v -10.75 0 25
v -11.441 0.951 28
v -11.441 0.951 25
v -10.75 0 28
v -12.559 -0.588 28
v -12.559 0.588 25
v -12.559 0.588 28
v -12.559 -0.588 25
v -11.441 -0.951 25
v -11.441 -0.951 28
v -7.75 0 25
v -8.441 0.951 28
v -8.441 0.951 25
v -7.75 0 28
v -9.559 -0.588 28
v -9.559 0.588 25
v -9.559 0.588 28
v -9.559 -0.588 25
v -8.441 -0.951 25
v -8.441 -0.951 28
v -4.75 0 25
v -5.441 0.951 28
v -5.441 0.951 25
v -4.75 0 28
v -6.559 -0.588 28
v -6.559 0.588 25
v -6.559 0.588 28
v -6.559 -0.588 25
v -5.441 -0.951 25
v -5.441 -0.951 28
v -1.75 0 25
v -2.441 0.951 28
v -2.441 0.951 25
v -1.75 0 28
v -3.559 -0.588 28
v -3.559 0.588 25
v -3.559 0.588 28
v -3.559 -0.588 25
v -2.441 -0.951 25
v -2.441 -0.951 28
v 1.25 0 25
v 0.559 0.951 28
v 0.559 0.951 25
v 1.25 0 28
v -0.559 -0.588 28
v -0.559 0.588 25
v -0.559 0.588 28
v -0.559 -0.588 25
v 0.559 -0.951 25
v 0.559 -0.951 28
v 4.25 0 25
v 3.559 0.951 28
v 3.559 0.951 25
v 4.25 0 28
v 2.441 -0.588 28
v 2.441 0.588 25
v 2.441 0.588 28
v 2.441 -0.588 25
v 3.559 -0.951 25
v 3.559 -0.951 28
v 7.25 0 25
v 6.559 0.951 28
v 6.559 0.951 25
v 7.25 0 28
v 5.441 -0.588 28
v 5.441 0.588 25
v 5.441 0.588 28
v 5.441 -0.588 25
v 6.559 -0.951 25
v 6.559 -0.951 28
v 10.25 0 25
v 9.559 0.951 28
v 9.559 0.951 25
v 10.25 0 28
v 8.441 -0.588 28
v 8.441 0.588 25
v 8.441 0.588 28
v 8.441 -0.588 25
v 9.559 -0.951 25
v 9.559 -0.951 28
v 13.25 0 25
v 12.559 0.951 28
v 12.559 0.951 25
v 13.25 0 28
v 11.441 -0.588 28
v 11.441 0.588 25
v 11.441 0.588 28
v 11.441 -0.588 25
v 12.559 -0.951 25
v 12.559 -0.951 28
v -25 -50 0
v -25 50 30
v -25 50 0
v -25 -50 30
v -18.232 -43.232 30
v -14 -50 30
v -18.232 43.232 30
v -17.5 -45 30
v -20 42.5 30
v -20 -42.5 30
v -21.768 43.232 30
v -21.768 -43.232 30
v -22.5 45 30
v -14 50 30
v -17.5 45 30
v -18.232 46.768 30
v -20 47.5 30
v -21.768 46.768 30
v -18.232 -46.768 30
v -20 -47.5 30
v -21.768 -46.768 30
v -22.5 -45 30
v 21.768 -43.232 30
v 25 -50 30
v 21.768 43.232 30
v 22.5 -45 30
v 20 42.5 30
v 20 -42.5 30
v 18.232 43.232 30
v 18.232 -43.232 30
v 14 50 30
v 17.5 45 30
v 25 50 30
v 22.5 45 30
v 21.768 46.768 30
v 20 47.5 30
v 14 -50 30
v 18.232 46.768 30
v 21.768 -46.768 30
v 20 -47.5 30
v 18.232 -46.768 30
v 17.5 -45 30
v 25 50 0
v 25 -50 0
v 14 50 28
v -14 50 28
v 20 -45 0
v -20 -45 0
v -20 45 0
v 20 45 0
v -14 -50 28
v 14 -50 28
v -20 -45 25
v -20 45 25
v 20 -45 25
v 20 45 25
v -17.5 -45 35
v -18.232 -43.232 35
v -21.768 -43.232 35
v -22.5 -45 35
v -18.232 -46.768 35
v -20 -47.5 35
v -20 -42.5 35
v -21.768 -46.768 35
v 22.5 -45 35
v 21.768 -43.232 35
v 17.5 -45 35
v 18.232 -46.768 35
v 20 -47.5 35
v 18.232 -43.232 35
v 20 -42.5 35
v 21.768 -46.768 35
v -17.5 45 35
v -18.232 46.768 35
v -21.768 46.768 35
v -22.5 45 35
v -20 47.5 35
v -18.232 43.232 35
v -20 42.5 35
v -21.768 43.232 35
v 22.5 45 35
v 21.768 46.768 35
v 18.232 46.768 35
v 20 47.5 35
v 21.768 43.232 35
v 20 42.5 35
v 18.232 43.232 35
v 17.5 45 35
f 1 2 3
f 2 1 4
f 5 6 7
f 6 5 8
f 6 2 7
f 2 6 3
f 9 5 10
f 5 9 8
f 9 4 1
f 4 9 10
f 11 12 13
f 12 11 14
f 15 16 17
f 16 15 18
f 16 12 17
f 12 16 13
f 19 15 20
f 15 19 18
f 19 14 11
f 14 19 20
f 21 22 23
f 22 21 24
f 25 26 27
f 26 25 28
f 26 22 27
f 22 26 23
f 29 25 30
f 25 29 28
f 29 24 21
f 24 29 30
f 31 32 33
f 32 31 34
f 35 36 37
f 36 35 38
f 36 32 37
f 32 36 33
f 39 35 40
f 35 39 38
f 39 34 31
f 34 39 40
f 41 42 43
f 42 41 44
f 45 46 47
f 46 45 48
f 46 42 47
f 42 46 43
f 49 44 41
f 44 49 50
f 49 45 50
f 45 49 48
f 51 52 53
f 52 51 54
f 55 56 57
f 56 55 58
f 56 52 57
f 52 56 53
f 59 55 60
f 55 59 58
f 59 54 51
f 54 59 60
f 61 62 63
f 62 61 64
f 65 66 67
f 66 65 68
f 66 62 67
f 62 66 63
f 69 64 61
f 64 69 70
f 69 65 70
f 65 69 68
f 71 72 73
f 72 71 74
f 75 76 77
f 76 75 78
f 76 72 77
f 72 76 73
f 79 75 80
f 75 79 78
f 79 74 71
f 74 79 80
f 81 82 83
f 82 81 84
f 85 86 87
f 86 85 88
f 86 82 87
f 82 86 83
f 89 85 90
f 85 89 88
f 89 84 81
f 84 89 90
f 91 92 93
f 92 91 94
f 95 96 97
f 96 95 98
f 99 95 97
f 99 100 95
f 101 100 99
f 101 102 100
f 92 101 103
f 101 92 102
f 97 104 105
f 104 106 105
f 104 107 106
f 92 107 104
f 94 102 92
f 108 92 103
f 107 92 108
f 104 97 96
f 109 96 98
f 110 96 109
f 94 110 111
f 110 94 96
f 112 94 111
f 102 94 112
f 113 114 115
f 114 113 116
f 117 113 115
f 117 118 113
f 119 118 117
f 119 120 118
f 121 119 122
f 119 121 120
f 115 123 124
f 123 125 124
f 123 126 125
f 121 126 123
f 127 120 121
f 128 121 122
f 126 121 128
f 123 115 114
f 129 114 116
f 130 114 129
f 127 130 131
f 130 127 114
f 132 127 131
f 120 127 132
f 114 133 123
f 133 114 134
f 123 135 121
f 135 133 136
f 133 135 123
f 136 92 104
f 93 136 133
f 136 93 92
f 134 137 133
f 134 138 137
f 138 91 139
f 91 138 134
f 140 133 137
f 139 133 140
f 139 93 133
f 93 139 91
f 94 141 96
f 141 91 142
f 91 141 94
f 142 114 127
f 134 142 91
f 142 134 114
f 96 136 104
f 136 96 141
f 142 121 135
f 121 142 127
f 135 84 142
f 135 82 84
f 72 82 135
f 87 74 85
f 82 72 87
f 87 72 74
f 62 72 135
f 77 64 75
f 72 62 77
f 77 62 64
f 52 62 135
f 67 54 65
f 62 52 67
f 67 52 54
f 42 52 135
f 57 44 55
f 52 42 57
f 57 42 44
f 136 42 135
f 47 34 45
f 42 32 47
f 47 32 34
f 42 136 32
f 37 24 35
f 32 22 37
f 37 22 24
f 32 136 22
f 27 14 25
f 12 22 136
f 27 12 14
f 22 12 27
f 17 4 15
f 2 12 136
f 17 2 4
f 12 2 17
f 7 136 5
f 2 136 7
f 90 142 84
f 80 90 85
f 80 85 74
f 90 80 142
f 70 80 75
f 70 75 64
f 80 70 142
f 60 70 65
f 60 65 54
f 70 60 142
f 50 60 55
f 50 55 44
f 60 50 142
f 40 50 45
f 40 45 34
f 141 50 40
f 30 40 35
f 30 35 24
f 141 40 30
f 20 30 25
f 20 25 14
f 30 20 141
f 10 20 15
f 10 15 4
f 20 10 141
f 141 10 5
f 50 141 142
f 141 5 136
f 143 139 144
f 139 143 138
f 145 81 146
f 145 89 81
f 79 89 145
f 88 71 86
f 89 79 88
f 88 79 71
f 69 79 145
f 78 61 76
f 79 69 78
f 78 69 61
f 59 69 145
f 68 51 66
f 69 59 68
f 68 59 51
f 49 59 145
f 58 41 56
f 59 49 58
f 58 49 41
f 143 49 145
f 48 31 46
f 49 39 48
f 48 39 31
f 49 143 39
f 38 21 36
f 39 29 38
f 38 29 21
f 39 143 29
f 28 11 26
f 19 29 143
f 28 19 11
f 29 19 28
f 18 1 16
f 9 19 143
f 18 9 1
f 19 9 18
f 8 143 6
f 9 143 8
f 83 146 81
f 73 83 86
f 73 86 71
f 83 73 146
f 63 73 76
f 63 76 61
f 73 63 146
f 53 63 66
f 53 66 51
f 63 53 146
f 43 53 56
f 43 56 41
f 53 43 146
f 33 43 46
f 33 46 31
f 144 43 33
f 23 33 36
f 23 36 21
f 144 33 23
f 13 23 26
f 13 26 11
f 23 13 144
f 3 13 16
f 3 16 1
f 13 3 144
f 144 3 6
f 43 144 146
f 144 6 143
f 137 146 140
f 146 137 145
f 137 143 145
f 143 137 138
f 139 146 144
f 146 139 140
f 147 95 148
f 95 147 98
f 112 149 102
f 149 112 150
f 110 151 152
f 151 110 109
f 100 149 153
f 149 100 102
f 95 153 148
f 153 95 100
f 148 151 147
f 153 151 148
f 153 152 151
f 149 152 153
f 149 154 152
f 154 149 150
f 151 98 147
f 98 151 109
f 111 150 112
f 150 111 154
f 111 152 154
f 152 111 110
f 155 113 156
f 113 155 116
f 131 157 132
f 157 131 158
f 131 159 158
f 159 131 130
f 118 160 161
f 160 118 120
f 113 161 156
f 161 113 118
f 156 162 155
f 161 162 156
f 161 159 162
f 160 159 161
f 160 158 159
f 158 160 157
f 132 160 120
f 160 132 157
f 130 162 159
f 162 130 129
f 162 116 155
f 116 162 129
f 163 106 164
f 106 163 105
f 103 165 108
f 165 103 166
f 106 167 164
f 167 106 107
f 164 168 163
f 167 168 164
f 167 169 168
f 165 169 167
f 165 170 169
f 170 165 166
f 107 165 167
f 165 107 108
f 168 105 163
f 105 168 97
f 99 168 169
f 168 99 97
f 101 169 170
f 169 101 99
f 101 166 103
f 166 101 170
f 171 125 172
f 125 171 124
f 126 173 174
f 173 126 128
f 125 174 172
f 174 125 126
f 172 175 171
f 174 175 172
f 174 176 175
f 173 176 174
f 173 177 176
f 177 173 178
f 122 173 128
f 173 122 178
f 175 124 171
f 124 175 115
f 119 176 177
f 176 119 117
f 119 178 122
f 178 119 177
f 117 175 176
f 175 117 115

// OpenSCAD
// file: ir_transistor.scad
module ir_transistor(x = 0, y = 0, z = 0)
{
    
    translate([x - (transistor_width / 2), 
               y - (transistor_depth / 2), 
               z])
        cube(size = [transistor_width, transistor_depth,                transistor_box_height]);
    
    translate([x, y, z + transistor_box_height])
        sphere(r = transistor_dome_radius);
    
    translate([x, 
               y - (transistor_depth / 2), 
               z + (transistor_box_height / 2)])
        rotate([90, 0, 0])
            cylinder(h = wire_length, 
                    r1 = wire_radius, 
                    r2 = wire_radius);
                    
    translate([x, y + (transistor_depth / 2), z + (transistor_box_height / 2)])
        rotate([270, 0, 0])
            cylinder(h = wire_length, 
                    r1 = wire_radius, 
                    r2 = wire_radius);
    
} /* End ir_transistor */
// file: led.scad
module led(x = 0, y = 0, z = 0)
{

    // Led box.
    translate([x, y - (led_depth / 2), z]) 
        cube(size = [led_width, 
            led_depth, 
            led_cyl_height]);
    
    // Led cylinder.
    translate([x + (led_width / 2), 
            y, 
            z + led_cyl_height])
        cylinder(h = led_cyl_height, 
            r1 = led_radius, 
            r2 = led_radius);
    
    // Led Anode.
    translate([x + (led_width / 2), 
            y - (led_depth / 4), 
            z  - anode_length])
        cylinder(h = anode_length, r1 = wire_radius, r2 = wire_radius, center = false);
    
    // Led Cathode.
    translate([x + (led_width / 2), 
            y + (led_depth / 4), 
            z + -cathode_length])
        cylinder(h = cathode_length, r1 = wire_radius, r2 = wire_radius, center = false);
    
} /* End led */
// file: dimensions.scad
box_width = 50;
box_height = 30;
box_depth = 100;
box_left = -(box_width / 2);
box_right = -box_left;
box_front = -(box_depth / 2);
box_back = -box_front;    

bridge_depth = 20;
ridge_width = 5;

slid_width = 28;
slid_height = 2;
slid_length = (box_depth / 2) - bridge_depth;

peg_height = 5;

lid_height = 2.5;

led_width = 2.5;
led_depth = 5;
led_box_height = 3.2;
led_cyl_height = 4.8;
anode_length = 28;
cathode_length = 29;
led_radius = 1;
wire_radius = 0.5;

corner = ridge_width / 2;

transistor_width = 2;
transistor_depth = 2.5;
transistor_box_height = 1;
transistor_dome_height = 2;
transistor_dome_radius = 0.75;
wire_length = 8;
wire_radius = 0.5;
// main file
include <dimensions.scad>
include <led.scad>
include <ir_transistor.scad>

// Top part of the device.
difference()
{
    
    // Outside box.
    translate([box_left, 
               box_front, 
               0])
        cube(size = [box_width, 
             box_depth, 
             box_height]);
     
    // Cut tape-track out, front.
    translate([-(slid_width / 2),
               box_front,
               box_height - slid_height])
        cube(size = [slid_width,
                    box_depth,
                    slid_height]);
    
    // Hollow out box.
    translate([box_left + ridge_width,
              box_front + ridge_width, 
              0])
        cube(size = [box_width - 2*                 ridge_width, 
                    box_depth - 2 * ridge_width,                box_height - ridge_width]);
    
    for (x = [ -(slid_width / 2) + 1: 3 : (slid_width / 2) - 1])
    {
        led(x, 
            0, 
        box_height - slid_height - led_box_height - led_cyl_height);
    }
    
};

    // Peg's on all corners.
    translate([box_left + corner + corner,
            box_front + corner + corner,
            box_height])
        cylinder(h = peg_height, 
                r1 = corner, 
                r2 =  corner);

    translate([box_right - corner - corner,
            box_front + corner + corner,
            box_height])
        cylinder(h = peg_height, 
                r1 = corner, 
                r2 = corner);

    translate([box_left + corner + corner,
            box_back - corner - corner,
            box_height])
        cylinder(h = peg_height, 
                r1 = corner, 
                r2 = corner);

    translate([box_right - corner - corner,
            box_back - corner - corner,
            box_height])
        cylinder(h = peg_height, 
                r1 = corner, 
                r2 = corner);
